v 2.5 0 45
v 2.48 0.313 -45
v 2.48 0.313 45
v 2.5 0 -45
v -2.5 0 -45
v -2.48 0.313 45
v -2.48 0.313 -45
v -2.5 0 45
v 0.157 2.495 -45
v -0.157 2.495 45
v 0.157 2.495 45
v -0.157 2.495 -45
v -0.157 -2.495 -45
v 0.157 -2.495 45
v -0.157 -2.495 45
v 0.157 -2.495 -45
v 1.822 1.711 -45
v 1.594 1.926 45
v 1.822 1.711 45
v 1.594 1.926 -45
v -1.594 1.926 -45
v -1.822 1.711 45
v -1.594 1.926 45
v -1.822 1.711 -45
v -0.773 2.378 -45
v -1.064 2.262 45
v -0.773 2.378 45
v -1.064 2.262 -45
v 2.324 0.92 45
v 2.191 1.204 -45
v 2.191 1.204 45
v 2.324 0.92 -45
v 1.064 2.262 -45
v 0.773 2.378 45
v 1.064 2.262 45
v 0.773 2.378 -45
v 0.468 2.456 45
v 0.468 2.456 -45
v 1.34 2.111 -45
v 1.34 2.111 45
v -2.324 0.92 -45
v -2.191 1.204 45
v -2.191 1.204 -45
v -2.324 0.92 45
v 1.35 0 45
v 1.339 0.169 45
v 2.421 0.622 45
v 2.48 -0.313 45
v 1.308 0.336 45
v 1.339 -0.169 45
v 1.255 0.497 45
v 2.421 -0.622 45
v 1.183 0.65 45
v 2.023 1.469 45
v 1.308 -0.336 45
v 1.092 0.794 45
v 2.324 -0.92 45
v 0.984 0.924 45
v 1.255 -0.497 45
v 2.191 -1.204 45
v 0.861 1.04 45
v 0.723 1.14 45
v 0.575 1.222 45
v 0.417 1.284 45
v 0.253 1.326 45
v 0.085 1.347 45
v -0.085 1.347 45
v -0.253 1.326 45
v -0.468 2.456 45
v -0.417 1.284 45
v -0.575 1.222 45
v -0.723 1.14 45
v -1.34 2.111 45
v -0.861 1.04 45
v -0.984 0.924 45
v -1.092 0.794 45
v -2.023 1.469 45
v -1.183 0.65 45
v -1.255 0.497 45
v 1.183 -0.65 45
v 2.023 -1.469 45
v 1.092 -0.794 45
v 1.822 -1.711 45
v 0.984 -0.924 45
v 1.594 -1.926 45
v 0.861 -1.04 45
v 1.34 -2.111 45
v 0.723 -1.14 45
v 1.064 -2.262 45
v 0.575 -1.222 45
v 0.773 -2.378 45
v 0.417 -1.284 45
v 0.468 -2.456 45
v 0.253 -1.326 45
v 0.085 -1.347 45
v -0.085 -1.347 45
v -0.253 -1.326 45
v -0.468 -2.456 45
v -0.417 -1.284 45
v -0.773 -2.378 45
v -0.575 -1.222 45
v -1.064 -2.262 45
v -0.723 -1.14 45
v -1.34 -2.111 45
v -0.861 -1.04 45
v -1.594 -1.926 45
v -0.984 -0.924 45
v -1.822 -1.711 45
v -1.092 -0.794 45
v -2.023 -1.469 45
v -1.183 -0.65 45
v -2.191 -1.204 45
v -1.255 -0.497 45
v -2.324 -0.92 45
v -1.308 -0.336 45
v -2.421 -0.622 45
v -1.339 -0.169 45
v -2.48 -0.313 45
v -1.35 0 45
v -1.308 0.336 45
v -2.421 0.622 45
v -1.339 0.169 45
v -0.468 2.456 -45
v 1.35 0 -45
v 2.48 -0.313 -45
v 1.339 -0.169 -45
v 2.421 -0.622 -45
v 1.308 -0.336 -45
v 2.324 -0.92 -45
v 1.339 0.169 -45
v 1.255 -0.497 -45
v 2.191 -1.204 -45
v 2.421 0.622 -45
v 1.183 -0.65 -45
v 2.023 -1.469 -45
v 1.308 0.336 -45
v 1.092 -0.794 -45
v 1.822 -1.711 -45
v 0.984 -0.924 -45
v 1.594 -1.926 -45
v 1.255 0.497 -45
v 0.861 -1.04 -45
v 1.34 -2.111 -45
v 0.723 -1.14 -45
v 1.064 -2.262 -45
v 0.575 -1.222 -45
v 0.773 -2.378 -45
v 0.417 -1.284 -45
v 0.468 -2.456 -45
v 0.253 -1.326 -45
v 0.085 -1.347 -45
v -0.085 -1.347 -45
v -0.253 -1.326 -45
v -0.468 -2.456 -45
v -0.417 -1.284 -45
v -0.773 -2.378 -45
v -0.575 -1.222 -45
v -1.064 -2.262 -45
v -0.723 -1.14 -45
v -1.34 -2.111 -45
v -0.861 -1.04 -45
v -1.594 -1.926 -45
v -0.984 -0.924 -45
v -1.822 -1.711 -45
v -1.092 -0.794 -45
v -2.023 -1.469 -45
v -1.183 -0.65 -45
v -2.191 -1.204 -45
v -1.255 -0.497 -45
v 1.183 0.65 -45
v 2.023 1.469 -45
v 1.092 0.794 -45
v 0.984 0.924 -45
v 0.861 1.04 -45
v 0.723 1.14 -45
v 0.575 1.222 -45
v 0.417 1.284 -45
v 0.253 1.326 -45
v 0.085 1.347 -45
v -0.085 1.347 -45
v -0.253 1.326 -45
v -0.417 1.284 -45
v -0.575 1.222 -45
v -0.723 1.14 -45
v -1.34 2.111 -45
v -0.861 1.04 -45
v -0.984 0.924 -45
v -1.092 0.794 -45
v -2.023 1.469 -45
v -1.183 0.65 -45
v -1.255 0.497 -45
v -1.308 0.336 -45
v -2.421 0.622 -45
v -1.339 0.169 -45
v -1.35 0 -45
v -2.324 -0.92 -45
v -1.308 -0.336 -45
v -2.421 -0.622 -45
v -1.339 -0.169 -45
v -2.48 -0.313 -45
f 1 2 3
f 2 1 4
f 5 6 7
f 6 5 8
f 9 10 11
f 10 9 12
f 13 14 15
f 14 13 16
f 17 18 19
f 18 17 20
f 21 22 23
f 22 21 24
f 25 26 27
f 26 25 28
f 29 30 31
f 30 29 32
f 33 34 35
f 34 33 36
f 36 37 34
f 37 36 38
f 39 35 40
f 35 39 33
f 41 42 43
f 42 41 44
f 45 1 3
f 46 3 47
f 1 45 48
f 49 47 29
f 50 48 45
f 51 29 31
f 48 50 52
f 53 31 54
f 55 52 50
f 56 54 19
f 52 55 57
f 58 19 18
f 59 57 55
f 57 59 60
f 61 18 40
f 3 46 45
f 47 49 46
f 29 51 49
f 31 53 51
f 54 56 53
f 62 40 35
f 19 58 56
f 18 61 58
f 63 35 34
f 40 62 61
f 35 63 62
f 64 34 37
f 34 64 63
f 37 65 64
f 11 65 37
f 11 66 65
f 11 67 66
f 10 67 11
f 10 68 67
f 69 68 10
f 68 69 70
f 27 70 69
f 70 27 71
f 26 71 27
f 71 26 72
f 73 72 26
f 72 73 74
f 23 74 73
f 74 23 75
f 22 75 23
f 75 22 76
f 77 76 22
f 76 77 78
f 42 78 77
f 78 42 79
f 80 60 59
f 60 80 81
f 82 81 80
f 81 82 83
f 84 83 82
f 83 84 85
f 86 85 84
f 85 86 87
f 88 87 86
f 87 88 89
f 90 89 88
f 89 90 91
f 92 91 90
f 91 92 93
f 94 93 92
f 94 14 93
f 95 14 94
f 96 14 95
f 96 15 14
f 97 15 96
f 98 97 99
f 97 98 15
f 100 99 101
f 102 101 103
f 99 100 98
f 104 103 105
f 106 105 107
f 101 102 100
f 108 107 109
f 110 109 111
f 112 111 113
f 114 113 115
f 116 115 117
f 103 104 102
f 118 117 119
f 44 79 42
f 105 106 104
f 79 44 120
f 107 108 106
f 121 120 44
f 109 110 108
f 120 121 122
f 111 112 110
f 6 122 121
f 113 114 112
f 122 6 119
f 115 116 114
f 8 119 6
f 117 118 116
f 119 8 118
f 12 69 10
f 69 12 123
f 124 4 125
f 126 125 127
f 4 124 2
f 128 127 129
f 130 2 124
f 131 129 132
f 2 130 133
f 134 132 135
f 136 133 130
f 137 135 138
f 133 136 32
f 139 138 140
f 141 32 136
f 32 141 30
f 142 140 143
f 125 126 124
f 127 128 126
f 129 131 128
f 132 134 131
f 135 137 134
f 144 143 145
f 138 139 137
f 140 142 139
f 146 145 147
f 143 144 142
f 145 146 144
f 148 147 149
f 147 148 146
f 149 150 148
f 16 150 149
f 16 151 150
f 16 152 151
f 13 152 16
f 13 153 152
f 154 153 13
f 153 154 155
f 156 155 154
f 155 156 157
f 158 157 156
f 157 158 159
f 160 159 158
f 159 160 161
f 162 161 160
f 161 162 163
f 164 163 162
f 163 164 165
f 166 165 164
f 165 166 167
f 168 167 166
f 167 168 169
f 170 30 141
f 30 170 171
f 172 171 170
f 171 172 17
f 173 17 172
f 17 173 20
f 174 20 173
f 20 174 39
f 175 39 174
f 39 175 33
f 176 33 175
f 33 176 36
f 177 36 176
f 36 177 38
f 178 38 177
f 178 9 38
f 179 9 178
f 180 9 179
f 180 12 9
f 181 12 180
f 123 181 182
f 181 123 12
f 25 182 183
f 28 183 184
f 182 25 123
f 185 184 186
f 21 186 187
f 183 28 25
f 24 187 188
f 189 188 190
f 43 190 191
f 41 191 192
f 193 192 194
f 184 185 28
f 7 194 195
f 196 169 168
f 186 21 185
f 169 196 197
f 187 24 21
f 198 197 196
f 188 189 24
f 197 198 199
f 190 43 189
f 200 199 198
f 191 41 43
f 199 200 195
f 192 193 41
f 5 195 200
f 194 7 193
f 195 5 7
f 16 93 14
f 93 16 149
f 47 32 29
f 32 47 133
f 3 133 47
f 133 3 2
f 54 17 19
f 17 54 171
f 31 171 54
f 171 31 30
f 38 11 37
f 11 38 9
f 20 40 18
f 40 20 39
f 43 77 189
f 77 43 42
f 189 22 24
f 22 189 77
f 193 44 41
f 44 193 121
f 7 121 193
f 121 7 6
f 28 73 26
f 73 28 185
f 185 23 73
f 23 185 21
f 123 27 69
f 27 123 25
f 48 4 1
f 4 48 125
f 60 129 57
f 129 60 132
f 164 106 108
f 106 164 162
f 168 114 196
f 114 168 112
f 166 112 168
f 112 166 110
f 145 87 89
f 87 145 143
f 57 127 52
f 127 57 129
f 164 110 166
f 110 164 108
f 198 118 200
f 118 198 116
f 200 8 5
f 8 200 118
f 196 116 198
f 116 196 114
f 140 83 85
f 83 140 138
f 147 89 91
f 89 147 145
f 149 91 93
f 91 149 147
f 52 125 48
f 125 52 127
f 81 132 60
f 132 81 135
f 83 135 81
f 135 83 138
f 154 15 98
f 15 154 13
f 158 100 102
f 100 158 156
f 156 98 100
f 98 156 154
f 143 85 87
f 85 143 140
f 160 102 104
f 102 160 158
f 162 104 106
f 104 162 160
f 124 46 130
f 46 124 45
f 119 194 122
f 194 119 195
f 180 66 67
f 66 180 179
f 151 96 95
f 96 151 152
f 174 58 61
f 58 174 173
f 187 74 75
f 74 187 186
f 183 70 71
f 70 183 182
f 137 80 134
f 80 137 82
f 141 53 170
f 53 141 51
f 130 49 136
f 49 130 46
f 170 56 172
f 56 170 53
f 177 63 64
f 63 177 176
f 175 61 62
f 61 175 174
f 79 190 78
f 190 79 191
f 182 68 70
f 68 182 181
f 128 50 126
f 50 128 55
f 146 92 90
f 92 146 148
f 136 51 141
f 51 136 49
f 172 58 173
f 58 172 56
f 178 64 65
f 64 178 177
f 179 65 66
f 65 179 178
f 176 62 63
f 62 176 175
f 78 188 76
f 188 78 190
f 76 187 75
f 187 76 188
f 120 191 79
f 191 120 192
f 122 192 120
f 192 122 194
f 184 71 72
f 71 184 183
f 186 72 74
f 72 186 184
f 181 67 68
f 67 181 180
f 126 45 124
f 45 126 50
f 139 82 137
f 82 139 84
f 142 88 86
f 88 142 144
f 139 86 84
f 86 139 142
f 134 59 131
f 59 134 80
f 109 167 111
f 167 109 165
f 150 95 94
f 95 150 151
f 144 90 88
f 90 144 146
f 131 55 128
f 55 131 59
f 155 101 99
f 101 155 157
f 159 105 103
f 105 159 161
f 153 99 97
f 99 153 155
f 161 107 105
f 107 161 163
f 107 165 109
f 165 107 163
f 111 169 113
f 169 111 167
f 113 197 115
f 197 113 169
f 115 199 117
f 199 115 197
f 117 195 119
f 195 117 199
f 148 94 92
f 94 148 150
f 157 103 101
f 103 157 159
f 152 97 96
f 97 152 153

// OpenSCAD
$fn = 50;


difference() {
	union() {
		translate(v = [0, 0, -45.0000000000]) {
			cylinder(h = 90, r = 2.5000000000);
		}
	}
	union() {
		translate(v = [0, 0, -100.0000000000]) {
			cylinder(h = 200, r = 1.3500000000);
		}
	}
}
